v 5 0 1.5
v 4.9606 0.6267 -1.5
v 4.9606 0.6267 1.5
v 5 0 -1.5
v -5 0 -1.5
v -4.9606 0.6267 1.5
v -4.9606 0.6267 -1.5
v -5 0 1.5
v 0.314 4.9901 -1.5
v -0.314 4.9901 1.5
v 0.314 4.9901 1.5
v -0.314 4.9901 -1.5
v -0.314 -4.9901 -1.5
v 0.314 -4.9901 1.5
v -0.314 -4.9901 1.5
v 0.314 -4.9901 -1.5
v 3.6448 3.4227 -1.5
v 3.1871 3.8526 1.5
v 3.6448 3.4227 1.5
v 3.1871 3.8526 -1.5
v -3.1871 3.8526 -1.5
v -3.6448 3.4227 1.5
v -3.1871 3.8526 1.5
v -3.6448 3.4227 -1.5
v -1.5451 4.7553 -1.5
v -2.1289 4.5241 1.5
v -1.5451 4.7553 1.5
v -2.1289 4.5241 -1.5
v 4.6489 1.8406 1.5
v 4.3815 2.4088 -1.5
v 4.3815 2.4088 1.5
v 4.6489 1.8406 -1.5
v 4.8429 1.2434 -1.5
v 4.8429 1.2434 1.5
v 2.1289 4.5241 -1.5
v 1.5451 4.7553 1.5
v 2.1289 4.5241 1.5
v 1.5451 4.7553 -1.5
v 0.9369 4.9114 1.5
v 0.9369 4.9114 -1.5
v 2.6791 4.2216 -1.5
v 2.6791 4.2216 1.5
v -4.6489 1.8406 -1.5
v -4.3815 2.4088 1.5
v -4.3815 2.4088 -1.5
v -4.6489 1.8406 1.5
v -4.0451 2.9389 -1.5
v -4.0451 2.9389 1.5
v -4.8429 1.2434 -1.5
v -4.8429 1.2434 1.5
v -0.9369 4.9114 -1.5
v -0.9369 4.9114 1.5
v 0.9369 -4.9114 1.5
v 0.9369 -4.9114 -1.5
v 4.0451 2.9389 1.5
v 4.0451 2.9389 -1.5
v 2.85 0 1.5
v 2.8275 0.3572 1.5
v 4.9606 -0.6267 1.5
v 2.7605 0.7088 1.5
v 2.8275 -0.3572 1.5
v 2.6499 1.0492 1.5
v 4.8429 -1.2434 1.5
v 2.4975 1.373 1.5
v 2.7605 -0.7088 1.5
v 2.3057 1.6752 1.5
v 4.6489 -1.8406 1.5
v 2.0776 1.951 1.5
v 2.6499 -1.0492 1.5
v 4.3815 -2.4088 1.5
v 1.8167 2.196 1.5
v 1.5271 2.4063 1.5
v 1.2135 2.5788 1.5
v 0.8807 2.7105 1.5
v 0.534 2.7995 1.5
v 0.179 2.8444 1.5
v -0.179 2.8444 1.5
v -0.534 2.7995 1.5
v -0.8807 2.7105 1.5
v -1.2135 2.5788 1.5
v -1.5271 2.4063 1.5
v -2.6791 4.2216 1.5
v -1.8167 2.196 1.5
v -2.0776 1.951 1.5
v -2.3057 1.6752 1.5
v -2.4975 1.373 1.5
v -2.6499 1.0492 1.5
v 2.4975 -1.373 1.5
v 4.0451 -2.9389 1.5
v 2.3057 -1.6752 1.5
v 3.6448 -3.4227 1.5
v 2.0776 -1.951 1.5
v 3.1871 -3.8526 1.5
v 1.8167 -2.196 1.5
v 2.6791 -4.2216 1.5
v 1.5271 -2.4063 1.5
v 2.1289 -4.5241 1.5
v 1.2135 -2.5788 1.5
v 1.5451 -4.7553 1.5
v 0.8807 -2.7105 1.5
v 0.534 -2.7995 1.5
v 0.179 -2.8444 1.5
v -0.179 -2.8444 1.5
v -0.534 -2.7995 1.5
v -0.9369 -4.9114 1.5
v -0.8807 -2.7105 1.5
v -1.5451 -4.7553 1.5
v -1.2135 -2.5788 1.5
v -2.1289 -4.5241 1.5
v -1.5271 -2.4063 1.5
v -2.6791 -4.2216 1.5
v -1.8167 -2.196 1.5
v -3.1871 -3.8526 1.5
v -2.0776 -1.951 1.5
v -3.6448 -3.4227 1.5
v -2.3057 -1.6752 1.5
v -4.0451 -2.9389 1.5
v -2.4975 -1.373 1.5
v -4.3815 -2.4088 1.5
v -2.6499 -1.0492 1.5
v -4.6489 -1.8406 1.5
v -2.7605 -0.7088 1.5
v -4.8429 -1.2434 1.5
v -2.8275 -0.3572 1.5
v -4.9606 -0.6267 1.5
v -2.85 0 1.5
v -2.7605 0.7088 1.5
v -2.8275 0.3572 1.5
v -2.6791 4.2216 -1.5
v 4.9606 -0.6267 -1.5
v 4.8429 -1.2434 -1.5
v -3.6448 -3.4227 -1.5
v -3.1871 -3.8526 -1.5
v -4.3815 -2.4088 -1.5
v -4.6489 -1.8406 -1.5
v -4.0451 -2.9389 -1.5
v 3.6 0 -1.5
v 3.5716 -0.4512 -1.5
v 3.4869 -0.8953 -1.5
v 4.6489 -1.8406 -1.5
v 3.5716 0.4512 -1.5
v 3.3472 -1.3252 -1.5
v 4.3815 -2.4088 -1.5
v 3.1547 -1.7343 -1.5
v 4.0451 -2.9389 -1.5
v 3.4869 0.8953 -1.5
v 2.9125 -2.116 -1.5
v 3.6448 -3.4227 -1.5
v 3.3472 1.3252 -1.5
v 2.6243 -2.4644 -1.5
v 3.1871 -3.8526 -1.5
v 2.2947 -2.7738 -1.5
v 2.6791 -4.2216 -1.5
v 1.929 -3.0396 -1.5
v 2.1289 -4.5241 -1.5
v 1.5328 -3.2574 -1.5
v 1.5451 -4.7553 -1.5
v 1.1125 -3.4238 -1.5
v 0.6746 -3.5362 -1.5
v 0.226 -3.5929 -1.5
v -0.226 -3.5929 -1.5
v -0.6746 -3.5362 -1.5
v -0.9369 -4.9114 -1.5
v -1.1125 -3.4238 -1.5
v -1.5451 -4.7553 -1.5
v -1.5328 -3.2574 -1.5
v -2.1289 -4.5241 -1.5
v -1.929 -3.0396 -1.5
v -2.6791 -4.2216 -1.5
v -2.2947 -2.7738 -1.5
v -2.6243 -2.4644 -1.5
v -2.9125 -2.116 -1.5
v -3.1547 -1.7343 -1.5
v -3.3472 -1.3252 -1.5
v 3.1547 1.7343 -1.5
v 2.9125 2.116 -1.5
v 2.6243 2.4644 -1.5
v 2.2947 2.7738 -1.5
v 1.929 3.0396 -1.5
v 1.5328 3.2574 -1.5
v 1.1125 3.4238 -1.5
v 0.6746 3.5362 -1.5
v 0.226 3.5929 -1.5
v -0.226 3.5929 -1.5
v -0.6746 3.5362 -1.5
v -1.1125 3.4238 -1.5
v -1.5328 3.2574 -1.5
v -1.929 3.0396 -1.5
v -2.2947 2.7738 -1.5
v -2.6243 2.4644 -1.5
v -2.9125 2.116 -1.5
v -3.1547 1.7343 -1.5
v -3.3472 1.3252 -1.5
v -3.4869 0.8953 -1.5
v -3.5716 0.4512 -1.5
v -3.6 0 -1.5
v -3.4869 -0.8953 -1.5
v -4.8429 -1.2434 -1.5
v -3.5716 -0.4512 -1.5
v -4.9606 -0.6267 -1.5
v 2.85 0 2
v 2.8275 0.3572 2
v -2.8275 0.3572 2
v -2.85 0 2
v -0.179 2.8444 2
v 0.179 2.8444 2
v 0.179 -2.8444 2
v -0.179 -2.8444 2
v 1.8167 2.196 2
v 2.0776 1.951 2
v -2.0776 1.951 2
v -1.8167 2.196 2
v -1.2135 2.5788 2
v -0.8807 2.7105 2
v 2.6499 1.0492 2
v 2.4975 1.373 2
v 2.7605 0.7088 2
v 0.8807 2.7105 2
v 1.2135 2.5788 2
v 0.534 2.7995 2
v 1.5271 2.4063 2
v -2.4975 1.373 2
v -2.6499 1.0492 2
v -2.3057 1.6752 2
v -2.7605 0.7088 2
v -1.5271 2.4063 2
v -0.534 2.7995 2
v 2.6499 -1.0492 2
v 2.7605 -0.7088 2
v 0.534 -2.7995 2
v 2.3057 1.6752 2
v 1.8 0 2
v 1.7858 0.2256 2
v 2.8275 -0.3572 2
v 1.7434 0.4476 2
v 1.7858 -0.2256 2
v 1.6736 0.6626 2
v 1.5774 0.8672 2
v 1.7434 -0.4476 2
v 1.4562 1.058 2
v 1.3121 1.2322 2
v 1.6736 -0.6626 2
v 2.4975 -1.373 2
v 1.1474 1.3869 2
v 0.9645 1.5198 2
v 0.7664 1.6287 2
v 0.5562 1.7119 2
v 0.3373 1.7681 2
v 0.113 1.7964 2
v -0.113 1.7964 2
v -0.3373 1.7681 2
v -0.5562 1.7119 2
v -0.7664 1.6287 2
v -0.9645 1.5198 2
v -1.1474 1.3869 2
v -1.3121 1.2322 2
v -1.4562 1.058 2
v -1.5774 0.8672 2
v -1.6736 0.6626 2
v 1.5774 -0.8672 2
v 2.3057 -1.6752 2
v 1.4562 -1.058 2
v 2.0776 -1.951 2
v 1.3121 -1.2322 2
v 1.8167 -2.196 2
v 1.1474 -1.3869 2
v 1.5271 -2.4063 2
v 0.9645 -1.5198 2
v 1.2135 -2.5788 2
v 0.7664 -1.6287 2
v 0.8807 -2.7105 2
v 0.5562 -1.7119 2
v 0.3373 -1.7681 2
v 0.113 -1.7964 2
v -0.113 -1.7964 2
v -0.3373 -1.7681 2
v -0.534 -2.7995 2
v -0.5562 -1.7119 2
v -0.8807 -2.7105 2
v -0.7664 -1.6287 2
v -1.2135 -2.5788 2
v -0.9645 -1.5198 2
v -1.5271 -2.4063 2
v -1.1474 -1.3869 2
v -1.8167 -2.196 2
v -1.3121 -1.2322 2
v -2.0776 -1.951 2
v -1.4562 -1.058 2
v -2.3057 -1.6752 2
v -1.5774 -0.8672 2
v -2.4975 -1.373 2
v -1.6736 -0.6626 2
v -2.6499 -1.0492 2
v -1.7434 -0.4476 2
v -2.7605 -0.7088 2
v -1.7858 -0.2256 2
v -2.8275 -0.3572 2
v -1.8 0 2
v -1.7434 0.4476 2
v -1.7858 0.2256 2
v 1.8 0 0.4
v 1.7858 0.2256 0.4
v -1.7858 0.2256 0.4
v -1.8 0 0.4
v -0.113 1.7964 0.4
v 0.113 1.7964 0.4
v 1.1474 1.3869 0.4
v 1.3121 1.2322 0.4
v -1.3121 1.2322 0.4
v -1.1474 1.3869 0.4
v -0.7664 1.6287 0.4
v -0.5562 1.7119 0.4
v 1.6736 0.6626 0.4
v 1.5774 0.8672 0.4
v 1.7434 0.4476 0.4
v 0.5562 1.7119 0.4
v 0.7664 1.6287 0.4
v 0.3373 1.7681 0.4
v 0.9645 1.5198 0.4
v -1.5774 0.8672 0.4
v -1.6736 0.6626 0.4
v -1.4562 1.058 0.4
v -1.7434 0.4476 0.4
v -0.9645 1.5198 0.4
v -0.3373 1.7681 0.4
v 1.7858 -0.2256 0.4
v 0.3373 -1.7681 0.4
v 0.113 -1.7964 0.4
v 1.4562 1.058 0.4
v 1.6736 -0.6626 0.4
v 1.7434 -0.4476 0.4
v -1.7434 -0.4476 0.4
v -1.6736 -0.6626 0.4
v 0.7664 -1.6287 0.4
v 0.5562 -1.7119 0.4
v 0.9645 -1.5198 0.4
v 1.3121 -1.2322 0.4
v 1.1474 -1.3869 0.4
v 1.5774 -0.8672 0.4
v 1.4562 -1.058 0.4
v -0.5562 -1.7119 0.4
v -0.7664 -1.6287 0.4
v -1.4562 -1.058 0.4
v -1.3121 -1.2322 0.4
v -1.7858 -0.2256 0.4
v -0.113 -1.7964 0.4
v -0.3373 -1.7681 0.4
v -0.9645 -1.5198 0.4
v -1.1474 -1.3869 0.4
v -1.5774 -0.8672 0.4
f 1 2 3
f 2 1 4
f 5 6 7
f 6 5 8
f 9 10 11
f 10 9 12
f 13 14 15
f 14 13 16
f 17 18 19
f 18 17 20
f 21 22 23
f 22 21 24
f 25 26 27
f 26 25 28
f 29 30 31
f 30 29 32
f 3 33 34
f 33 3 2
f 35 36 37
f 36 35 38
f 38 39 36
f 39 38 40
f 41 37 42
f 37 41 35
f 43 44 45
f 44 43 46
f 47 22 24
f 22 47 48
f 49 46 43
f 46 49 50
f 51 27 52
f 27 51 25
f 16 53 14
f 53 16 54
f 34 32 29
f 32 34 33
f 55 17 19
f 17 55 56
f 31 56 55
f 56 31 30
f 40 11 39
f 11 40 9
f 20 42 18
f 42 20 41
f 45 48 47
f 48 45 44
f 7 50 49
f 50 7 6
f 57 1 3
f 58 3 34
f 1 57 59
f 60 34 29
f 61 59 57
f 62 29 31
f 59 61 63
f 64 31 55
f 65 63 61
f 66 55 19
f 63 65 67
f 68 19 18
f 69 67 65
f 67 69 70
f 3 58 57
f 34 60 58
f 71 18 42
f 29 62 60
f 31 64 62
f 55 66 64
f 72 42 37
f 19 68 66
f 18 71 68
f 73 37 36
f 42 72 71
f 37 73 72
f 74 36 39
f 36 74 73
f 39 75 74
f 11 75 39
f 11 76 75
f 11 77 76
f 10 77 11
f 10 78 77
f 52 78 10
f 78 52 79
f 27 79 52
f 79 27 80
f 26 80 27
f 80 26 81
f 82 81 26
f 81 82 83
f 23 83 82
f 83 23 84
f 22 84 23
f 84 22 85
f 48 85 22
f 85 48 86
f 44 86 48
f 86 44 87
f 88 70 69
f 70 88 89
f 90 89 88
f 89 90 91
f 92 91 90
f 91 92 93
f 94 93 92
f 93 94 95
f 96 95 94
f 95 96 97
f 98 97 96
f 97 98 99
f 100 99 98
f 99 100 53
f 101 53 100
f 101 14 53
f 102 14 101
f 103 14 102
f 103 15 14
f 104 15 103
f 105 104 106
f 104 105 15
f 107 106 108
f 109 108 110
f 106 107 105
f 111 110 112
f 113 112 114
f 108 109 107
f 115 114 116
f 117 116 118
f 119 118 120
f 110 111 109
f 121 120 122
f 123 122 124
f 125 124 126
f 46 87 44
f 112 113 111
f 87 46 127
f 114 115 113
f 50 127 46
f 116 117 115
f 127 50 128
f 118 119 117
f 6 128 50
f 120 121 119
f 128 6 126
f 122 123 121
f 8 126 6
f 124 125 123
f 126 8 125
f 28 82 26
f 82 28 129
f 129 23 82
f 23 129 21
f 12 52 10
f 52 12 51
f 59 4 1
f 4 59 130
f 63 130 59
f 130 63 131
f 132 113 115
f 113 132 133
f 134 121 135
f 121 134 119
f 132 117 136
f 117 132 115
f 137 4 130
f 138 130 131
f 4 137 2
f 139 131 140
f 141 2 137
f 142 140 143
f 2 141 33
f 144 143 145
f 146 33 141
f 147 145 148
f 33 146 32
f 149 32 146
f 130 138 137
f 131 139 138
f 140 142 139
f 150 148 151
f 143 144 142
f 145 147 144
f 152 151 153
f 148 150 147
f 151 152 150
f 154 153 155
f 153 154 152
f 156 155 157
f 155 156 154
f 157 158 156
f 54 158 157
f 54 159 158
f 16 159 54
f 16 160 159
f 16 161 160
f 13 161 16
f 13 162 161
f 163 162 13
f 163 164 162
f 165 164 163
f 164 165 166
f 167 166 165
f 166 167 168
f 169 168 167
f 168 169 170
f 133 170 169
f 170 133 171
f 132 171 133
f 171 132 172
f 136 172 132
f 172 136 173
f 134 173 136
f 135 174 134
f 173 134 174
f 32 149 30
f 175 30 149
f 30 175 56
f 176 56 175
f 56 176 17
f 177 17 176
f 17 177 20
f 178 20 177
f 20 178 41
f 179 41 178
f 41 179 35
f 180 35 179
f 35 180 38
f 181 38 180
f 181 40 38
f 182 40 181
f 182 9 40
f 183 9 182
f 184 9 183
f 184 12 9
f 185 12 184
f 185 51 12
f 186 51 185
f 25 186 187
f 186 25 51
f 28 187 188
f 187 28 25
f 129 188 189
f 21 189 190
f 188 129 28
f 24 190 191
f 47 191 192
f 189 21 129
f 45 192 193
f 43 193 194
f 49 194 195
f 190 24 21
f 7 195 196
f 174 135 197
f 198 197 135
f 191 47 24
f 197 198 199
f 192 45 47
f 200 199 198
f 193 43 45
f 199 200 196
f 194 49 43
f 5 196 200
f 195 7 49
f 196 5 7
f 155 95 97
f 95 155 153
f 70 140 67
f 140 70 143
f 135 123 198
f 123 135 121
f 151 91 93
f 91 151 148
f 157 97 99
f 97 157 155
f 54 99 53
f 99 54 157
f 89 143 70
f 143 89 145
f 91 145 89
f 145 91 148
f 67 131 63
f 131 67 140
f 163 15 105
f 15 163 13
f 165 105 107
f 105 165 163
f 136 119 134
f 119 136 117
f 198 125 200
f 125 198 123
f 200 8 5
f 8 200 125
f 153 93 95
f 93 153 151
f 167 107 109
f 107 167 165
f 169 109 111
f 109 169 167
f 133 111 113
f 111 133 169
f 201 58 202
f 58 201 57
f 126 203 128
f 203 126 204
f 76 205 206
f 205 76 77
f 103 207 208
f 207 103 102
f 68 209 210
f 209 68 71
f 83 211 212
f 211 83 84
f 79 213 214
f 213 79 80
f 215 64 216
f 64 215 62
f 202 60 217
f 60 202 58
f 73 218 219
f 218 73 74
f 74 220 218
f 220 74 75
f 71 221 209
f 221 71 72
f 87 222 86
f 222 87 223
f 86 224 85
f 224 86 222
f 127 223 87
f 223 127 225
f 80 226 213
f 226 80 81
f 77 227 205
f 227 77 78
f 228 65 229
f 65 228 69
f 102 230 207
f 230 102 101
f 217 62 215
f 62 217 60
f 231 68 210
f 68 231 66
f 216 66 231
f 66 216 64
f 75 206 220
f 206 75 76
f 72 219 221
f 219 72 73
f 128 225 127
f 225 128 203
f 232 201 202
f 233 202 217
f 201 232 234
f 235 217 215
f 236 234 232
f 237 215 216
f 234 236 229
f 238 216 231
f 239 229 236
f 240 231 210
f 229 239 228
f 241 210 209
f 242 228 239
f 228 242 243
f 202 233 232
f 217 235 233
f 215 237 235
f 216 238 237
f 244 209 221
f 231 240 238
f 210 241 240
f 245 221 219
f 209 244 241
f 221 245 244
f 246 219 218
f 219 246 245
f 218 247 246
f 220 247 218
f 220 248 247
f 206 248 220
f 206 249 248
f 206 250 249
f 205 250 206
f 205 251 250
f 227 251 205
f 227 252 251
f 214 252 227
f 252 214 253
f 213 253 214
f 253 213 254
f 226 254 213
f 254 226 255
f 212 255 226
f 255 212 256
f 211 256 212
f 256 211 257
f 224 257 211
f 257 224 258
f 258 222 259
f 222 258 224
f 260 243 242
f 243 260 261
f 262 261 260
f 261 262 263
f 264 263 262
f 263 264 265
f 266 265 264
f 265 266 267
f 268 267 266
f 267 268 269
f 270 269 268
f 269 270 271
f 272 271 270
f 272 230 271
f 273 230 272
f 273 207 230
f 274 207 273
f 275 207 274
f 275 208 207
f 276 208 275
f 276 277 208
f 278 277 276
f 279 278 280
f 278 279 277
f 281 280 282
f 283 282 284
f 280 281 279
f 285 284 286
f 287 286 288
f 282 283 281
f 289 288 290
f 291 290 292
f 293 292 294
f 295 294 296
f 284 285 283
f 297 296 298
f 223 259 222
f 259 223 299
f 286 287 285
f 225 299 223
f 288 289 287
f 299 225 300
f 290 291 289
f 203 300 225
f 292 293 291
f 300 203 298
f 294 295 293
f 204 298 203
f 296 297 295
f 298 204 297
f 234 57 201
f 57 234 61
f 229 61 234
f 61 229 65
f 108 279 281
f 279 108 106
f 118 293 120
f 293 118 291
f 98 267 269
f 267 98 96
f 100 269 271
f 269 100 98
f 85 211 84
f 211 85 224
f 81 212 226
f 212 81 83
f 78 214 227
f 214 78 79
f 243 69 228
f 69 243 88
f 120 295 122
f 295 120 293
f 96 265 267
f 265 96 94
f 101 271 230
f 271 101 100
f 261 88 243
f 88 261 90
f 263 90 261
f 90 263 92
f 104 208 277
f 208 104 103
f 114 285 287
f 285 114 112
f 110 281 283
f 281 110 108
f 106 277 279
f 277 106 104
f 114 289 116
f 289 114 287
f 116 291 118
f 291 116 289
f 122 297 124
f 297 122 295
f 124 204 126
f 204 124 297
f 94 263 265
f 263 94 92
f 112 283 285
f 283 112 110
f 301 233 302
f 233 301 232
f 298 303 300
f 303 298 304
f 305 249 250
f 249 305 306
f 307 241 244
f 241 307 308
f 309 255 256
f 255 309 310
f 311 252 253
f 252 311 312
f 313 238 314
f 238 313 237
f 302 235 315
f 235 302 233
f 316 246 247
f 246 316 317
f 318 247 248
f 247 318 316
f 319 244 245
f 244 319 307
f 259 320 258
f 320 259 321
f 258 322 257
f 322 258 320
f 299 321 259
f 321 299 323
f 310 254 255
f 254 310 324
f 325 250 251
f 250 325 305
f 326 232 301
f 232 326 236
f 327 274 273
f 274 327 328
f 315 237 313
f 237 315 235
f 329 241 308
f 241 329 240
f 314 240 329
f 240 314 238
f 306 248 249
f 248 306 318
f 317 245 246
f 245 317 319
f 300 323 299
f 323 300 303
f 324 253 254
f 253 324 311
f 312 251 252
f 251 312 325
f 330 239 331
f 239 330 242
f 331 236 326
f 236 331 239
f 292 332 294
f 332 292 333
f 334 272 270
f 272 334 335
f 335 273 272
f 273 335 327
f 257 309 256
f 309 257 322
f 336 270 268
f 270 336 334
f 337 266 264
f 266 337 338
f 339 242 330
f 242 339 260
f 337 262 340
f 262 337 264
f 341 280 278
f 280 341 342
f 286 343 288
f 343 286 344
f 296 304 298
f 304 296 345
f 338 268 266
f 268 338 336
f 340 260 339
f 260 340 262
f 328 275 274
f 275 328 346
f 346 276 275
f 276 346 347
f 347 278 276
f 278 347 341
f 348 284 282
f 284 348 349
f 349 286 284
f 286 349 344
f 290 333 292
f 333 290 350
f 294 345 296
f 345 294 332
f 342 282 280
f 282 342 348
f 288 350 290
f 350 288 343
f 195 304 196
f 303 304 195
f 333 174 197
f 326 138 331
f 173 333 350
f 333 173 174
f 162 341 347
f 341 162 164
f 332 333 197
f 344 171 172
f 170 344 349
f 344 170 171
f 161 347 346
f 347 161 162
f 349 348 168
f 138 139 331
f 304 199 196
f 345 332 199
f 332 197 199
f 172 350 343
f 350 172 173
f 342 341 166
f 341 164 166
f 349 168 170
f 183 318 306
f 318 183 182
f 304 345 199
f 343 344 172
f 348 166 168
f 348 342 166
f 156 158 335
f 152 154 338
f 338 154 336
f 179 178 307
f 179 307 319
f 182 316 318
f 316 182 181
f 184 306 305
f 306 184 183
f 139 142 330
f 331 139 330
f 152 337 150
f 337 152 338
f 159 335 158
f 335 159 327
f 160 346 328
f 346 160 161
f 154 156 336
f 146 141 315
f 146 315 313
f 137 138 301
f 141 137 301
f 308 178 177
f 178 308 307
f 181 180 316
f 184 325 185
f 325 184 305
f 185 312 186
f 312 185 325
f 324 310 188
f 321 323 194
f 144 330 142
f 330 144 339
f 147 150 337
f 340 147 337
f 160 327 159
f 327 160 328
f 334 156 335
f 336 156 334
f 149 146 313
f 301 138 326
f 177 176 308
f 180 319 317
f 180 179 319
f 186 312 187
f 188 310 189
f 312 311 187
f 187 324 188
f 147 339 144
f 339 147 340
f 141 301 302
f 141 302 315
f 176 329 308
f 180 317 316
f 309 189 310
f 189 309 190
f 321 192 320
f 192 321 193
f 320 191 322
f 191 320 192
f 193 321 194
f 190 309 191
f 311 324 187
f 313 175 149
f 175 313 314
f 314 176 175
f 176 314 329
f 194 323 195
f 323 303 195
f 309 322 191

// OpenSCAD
$fn = 50;


difference() {
	union() {
		translate(v = [0, 0, -1.5000000000]) {
			rotate(a = [0, 0, 0]) {
				cylinder(h = 3, r = 5.0000000000);
			}
		}
		translate(v = [0, 0, -1.5000000000]) {
			rotate(a = [0, 0, 0]) {
				cylinder(h = 3.5000000000, r = 2.8500000000);
			}
		}
	}
	union() {
		translate(v = [0, 0, -125.0000000000]) {
			rotate(a = [0, 0, 0]) {
				cylinder(h = 250, r = 1.8000000000);
			}
		}
		#translate(v = [0, 0, 0.4000000000]) {
			rotate(a = [0, 180, 0]) {
				cylinder(h = 1.9000000000, r1 = 1.8000000000, r2 = 3.6000000000);
			}
		}
		#translate(v = [0, 0, 2.0000000000]) {
			rotate(a = [0, 180, 0]) {
				cylinder(h = 3.5000000000, r = 1.8000000000);
			}
		}
	}
}
